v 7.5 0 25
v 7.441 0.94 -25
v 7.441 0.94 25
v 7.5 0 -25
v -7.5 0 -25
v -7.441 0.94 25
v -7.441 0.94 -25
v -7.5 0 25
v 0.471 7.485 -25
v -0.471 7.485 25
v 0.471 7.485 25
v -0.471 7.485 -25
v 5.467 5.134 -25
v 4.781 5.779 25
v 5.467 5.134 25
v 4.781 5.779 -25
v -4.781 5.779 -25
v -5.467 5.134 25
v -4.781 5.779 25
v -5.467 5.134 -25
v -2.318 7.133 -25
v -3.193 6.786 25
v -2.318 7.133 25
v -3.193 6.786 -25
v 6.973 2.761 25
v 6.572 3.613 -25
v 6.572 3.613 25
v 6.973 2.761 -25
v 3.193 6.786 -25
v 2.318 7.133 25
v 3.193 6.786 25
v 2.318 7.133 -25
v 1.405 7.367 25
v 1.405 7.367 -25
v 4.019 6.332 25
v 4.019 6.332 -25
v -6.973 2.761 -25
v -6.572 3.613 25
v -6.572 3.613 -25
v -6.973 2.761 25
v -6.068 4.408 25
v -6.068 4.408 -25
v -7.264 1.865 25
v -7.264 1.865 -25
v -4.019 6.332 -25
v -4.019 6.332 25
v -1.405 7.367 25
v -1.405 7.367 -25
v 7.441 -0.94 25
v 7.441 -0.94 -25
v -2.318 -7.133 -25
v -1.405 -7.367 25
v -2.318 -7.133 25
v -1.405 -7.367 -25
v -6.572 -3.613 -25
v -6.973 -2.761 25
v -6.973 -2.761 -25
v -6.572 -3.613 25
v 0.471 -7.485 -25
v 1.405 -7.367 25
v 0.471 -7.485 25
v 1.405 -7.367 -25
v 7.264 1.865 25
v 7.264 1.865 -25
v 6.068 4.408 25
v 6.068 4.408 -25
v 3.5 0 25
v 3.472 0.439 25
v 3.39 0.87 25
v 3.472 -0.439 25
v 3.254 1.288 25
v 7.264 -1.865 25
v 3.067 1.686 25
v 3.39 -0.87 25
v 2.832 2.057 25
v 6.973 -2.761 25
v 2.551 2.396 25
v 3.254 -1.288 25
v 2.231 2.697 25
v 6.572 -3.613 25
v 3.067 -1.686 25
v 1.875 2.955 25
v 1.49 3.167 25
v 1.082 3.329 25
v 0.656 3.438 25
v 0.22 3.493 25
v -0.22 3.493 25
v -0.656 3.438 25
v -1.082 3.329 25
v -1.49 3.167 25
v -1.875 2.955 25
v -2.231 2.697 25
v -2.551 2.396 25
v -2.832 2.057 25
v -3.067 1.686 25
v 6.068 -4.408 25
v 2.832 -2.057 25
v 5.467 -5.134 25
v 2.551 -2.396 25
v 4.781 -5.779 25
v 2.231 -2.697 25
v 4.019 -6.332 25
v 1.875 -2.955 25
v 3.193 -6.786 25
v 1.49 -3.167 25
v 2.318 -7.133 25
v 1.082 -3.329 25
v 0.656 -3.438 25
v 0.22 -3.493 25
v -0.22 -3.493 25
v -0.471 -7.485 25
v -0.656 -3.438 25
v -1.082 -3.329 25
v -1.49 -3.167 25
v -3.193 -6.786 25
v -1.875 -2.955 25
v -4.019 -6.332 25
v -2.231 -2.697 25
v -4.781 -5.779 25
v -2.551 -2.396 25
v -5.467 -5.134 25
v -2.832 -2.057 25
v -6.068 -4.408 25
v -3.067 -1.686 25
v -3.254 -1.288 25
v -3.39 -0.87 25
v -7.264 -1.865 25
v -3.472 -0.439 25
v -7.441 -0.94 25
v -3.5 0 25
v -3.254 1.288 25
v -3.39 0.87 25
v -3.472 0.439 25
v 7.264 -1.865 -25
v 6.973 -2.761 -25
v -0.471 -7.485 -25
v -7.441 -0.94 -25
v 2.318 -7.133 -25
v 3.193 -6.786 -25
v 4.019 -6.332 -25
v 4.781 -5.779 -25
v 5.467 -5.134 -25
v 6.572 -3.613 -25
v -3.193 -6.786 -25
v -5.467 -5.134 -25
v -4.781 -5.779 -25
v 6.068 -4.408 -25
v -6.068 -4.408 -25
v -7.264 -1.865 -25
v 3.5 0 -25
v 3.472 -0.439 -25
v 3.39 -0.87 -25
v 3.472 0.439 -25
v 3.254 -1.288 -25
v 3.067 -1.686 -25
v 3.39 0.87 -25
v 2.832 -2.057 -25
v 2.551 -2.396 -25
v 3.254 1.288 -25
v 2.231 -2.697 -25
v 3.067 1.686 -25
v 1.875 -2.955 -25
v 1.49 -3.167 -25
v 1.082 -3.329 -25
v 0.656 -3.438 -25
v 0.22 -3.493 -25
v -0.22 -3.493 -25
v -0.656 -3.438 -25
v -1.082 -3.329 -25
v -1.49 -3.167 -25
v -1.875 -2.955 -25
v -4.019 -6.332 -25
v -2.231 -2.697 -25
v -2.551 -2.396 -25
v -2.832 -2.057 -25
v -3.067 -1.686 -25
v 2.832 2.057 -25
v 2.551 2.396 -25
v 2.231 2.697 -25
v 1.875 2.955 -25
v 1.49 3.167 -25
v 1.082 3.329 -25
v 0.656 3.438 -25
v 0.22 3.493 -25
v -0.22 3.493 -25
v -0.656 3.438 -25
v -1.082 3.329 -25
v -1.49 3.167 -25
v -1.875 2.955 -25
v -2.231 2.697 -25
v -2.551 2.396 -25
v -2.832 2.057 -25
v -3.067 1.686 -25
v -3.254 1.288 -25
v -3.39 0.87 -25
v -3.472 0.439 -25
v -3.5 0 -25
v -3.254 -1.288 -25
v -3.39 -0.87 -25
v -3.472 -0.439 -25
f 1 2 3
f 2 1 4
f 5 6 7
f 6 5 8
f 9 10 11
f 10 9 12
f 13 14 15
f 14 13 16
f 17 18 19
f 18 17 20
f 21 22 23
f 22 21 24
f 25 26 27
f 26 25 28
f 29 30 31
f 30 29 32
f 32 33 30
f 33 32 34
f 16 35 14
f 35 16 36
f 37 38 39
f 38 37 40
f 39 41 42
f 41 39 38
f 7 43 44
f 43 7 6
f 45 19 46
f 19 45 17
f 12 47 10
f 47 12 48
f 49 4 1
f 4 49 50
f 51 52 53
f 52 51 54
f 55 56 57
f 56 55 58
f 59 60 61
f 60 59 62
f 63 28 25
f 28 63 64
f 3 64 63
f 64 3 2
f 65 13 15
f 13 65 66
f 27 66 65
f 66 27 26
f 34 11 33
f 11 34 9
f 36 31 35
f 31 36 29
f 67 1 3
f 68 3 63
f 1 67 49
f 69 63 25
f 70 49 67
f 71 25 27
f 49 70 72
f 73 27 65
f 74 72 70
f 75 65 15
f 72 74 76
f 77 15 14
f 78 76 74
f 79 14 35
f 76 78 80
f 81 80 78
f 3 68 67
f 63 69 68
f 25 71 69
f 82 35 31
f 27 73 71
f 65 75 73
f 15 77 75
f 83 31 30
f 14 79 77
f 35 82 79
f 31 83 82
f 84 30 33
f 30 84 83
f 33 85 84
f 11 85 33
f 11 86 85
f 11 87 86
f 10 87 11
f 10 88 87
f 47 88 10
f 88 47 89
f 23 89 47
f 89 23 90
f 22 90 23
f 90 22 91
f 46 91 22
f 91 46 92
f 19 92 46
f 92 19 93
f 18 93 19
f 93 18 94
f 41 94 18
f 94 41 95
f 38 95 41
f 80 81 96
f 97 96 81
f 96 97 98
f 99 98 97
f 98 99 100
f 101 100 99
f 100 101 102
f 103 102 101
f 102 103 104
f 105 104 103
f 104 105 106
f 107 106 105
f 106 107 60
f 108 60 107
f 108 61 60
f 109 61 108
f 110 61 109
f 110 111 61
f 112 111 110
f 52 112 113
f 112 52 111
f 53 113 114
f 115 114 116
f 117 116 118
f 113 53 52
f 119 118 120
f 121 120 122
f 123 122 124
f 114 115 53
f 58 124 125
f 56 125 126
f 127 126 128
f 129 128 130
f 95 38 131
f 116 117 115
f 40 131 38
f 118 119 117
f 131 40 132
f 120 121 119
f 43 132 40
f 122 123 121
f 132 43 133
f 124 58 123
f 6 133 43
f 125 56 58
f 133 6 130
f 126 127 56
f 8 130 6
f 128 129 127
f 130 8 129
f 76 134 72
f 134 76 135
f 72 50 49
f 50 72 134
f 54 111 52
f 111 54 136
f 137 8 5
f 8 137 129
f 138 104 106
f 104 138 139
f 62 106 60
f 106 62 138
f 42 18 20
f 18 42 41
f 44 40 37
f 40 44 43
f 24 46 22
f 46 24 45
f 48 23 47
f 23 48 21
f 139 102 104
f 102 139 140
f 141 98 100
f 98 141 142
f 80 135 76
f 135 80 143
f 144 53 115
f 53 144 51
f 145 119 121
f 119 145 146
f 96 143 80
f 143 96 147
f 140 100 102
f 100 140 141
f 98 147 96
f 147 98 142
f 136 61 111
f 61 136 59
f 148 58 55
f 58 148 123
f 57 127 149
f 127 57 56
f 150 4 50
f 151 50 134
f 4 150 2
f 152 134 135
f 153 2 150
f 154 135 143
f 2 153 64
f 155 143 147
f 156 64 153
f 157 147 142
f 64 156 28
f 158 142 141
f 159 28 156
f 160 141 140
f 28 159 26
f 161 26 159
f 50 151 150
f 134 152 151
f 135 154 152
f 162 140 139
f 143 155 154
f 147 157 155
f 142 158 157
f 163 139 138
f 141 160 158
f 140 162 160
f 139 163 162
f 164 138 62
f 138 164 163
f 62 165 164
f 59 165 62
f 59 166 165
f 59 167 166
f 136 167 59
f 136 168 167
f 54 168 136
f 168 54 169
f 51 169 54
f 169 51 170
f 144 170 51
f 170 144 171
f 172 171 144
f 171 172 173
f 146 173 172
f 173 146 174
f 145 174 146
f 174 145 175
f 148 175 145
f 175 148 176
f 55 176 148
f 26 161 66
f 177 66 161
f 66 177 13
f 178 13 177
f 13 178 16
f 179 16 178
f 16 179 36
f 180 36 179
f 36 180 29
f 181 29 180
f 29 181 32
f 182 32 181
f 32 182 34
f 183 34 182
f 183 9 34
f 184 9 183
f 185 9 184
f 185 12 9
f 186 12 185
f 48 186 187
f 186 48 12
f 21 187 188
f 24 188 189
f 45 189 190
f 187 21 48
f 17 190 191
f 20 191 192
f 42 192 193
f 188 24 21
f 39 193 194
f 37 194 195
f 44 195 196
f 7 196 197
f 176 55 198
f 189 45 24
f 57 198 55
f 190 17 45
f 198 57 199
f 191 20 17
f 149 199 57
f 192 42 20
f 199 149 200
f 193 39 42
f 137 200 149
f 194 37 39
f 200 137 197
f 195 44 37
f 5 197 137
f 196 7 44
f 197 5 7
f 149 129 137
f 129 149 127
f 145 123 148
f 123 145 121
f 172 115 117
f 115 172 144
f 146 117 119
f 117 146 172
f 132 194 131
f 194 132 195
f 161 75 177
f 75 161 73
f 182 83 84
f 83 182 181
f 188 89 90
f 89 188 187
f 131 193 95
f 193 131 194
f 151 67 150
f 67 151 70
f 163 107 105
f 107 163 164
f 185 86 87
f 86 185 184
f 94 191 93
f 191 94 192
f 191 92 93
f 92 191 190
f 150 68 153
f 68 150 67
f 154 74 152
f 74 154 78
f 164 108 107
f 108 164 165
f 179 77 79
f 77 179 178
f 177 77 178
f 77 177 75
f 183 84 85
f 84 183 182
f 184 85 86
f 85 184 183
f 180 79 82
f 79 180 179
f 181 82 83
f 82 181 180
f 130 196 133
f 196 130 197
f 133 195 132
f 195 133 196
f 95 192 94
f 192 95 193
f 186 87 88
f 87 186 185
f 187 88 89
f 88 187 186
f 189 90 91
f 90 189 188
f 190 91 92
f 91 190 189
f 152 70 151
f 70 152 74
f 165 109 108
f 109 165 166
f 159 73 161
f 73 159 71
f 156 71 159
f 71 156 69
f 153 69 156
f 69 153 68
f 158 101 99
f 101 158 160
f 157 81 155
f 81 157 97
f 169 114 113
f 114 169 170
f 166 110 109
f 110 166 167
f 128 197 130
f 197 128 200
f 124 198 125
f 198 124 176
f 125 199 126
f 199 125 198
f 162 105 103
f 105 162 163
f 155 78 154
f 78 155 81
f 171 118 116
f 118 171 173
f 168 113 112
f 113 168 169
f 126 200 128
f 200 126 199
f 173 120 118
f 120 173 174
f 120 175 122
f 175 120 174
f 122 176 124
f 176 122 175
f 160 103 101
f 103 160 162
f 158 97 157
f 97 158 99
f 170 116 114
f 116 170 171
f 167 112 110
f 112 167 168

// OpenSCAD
$fn = 50;


difference() {
	union() {
		translate(v = [0, 0, -25.0000000000]) {
			cylinder(h = 50, r = 7.5000000000);
		}
	}
	union() {
		translate(v = [0, 0, -100.0000000000]) {
			cylinder(h = 200, r = 3.5000000000);
		}
	}
}
